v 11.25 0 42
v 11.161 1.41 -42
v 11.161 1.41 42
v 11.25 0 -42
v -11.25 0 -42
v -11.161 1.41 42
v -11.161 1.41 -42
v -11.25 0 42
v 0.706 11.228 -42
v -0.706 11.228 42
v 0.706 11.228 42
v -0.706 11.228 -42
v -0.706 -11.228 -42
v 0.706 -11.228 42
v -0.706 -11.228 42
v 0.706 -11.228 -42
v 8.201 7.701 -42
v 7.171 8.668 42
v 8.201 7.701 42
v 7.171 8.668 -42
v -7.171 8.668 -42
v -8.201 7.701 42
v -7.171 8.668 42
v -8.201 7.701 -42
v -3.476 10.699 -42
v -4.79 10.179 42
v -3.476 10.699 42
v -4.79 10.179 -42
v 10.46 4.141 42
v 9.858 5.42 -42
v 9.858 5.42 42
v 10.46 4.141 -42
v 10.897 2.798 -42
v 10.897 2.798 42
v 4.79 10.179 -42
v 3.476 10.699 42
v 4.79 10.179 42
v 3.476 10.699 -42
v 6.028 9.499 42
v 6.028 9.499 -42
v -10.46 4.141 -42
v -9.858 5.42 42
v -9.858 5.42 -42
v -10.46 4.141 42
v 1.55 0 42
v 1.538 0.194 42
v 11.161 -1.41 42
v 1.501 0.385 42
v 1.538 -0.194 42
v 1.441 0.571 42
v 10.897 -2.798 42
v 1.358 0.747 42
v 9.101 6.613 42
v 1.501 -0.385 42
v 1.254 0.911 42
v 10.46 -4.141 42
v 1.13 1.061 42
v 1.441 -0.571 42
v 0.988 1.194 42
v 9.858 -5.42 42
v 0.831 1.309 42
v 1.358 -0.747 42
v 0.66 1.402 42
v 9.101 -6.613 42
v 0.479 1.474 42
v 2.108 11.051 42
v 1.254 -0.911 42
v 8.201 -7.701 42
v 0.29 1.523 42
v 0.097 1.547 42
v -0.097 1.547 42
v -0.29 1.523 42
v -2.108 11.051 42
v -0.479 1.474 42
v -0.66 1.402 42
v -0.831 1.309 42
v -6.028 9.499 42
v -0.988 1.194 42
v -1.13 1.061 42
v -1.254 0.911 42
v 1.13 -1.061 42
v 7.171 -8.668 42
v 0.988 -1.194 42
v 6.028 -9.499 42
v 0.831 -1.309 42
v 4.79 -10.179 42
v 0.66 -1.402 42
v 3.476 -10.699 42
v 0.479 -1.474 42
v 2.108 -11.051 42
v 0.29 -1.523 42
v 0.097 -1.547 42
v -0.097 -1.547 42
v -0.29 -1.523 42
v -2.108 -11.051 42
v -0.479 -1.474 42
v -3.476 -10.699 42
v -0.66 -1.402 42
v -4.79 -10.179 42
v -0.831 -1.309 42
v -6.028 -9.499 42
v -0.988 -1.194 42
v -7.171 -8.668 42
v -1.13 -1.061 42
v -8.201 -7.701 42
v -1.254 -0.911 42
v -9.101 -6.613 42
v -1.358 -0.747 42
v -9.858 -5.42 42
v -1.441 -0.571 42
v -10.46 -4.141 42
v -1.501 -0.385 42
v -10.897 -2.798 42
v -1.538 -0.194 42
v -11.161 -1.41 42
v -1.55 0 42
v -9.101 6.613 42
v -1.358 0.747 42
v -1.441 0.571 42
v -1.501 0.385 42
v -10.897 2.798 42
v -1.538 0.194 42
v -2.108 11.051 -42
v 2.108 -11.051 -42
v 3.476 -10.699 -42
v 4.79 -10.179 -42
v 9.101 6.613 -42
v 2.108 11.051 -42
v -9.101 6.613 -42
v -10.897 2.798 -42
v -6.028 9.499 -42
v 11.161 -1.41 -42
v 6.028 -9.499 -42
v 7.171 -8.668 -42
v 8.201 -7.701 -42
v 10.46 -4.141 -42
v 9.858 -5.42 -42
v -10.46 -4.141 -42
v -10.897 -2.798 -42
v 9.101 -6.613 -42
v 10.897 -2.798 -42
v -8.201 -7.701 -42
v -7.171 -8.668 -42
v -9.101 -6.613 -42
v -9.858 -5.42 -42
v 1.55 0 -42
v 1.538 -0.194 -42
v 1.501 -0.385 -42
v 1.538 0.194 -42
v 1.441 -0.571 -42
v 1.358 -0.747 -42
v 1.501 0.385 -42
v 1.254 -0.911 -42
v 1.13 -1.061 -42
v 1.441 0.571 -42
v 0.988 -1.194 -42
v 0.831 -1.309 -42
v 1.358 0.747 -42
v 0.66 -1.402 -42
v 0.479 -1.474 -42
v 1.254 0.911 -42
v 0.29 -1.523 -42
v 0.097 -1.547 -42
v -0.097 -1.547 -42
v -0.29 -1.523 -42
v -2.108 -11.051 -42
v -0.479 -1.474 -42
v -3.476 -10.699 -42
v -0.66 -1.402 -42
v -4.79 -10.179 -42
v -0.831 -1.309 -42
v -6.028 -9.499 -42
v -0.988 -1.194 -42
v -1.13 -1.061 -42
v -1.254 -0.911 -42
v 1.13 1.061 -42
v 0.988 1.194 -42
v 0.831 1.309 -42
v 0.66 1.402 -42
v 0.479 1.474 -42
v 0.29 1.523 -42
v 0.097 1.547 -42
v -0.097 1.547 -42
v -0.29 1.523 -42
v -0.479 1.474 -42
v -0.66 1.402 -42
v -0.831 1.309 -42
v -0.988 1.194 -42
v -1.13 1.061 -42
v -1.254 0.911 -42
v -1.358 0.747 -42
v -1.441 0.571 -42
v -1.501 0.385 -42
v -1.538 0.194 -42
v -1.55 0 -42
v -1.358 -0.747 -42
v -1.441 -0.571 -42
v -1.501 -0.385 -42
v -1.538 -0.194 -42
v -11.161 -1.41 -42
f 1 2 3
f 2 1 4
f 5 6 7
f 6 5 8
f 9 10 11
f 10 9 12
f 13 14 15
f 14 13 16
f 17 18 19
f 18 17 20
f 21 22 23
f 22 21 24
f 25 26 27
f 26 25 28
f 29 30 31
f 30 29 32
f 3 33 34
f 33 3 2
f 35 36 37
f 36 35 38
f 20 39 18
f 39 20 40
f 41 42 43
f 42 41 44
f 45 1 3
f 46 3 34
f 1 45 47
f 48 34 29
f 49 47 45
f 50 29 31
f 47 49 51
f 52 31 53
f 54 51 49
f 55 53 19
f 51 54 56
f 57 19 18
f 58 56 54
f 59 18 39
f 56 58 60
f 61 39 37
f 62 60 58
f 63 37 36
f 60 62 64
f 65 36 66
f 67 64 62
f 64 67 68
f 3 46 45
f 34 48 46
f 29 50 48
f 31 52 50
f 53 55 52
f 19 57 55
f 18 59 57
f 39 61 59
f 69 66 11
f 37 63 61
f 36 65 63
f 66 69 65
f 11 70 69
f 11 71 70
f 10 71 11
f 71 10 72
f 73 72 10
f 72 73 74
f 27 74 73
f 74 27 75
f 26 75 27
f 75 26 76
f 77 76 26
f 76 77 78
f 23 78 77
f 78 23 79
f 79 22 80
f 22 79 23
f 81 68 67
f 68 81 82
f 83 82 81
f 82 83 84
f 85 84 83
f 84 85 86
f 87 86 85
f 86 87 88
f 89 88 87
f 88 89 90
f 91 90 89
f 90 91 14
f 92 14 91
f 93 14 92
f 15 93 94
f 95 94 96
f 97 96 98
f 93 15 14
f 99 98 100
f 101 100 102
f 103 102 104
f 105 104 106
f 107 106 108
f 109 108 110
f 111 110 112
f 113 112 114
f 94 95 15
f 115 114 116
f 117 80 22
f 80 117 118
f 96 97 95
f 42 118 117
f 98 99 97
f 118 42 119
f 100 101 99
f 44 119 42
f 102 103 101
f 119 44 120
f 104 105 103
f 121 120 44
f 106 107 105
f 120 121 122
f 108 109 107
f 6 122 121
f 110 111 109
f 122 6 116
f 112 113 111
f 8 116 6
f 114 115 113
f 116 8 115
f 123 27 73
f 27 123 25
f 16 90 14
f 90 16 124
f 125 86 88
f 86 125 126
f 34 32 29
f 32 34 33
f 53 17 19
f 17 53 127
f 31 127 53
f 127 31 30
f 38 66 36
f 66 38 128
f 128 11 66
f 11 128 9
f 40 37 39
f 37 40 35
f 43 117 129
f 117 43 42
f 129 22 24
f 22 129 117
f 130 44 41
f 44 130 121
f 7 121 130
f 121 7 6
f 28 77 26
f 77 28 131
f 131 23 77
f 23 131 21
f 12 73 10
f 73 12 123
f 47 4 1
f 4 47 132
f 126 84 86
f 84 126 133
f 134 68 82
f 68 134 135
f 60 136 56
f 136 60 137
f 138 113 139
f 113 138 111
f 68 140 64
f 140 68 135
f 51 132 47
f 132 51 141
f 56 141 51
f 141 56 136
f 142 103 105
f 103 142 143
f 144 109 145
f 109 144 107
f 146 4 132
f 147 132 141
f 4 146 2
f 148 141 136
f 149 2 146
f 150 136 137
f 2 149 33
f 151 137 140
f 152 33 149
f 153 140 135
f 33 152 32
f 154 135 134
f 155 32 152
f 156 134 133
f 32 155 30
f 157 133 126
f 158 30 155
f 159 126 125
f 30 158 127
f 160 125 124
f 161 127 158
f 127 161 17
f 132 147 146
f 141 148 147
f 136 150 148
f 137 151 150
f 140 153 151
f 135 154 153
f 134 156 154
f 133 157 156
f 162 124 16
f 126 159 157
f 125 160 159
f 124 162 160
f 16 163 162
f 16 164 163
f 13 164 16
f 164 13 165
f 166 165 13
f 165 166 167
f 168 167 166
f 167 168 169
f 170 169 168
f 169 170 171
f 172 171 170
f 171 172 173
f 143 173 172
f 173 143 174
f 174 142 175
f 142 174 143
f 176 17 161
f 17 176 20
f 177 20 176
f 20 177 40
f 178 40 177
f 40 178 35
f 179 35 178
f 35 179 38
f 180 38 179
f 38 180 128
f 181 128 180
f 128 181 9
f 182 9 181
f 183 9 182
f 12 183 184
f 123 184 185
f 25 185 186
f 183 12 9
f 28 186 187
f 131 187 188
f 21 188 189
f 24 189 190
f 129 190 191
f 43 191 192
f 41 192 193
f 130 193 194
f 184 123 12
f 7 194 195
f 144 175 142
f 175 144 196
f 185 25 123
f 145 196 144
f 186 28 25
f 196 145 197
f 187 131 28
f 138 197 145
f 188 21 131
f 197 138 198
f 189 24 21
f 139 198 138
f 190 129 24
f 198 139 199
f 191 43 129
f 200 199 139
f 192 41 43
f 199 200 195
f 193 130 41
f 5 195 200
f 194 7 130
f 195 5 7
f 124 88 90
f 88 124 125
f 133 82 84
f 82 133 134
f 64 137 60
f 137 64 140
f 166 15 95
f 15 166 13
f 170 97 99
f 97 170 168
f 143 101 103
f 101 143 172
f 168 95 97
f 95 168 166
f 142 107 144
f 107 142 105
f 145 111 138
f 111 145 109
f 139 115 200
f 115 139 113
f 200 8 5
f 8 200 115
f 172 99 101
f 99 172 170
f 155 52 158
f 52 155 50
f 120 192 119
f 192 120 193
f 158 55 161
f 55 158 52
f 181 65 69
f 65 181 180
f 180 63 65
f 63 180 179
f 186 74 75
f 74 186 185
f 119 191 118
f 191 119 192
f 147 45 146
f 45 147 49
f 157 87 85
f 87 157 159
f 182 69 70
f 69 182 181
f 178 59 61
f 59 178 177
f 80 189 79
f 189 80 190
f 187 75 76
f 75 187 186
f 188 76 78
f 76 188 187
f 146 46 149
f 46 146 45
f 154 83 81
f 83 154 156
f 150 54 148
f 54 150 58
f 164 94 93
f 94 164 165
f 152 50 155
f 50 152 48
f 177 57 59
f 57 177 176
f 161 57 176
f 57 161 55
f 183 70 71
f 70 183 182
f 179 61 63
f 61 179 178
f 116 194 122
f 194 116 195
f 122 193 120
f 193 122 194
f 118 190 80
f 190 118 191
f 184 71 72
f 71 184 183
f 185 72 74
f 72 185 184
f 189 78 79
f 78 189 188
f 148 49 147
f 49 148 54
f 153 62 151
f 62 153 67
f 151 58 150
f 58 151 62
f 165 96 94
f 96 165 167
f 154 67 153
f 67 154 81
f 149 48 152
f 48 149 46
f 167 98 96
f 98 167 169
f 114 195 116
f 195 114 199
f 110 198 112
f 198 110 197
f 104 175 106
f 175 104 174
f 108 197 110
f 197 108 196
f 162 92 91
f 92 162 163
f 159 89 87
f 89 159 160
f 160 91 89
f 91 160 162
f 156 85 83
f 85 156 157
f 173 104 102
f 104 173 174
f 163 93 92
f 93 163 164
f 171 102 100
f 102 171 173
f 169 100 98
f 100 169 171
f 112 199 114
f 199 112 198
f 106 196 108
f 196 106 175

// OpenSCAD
$fn = 50;


difference() {
	union() {
		translate(v = [0, 0, -42.0000000000]) {
			cylinder(h = 84, r = 11.2500000000);
		}
	}
	union() {
		translate(v = [0, 0, -100.0000000000]) {
			cylinder(h = 200, r = 1.5500000000);
		}
	}
}
